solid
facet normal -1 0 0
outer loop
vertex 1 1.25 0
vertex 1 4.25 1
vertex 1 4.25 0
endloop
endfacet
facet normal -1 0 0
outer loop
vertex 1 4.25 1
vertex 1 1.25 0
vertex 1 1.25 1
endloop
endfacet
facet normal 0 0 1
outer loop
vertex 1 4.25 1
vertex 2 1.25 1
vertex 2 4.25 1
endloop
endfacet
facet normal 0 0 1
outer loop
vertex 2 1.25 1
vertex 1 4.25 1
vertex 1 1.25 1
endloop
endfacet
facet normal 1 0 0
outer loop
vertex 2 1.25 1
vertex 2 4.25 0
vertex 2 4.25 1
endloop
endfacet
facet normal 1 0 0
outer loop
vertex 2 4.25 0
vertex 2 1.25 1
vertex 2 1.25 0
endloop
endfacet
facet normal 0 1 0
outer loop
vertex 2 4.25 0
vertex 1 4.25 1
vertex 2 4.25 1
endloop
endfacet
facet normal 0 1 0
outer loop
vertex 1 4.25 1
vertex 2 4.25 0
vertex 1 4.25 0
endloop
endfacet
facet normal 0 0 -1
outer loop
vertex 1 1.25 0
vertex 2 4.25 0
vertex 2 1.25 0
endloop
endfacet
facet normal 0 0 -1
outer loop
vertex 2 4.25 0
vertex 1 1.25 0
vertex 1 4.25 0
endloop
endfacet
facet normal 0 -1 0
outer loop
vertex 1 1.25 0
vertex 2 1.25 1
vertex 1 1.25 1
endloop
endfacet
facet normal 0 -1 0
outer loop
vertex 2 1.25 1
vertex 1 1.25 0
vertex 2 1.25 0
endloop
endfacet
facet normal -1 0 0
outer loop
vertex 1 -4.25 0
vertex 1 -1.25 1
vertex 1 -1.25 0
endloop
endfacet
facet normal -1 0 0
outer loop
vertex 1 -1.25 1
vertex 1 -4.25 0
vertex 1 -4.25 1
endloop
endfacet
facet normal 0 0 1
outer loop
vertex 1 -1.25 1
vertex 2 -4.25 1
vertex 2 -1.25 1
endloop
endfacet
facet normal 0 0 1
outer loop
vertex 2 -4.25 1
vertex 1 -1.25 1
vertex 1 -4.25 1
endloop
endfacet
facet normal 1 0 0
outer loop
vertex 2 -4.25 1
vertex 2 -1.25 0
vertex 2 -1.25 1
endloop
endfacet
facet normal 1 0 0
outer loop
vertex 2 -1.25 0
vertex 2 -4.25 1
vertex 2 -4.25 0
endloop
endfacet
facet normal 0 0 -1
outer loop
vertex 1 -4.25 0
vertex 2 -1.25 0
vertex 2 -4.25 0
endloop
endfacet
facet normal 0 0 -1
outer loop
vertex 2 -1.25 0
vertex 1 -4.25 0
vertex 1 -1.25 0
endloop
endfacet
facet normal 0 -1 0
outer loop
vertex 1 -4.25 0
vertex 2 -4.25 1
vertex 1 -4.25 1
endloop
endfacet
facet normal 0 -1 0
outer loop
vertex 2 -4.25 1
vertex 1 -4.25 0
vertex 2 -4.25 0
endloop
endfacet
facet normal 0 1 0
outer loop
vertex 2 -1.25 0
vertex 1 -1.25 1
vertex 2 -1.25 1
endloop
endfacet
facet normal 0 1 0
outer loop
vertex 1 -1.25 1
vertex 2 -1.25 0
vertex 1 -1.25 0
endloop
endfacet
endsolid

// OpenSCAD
translate([1,1.25,0])
    {
    cube([1,3,1]);
    }
 translate([1,-4.25,0])
 {
        cube([1,3,1]);
 }
